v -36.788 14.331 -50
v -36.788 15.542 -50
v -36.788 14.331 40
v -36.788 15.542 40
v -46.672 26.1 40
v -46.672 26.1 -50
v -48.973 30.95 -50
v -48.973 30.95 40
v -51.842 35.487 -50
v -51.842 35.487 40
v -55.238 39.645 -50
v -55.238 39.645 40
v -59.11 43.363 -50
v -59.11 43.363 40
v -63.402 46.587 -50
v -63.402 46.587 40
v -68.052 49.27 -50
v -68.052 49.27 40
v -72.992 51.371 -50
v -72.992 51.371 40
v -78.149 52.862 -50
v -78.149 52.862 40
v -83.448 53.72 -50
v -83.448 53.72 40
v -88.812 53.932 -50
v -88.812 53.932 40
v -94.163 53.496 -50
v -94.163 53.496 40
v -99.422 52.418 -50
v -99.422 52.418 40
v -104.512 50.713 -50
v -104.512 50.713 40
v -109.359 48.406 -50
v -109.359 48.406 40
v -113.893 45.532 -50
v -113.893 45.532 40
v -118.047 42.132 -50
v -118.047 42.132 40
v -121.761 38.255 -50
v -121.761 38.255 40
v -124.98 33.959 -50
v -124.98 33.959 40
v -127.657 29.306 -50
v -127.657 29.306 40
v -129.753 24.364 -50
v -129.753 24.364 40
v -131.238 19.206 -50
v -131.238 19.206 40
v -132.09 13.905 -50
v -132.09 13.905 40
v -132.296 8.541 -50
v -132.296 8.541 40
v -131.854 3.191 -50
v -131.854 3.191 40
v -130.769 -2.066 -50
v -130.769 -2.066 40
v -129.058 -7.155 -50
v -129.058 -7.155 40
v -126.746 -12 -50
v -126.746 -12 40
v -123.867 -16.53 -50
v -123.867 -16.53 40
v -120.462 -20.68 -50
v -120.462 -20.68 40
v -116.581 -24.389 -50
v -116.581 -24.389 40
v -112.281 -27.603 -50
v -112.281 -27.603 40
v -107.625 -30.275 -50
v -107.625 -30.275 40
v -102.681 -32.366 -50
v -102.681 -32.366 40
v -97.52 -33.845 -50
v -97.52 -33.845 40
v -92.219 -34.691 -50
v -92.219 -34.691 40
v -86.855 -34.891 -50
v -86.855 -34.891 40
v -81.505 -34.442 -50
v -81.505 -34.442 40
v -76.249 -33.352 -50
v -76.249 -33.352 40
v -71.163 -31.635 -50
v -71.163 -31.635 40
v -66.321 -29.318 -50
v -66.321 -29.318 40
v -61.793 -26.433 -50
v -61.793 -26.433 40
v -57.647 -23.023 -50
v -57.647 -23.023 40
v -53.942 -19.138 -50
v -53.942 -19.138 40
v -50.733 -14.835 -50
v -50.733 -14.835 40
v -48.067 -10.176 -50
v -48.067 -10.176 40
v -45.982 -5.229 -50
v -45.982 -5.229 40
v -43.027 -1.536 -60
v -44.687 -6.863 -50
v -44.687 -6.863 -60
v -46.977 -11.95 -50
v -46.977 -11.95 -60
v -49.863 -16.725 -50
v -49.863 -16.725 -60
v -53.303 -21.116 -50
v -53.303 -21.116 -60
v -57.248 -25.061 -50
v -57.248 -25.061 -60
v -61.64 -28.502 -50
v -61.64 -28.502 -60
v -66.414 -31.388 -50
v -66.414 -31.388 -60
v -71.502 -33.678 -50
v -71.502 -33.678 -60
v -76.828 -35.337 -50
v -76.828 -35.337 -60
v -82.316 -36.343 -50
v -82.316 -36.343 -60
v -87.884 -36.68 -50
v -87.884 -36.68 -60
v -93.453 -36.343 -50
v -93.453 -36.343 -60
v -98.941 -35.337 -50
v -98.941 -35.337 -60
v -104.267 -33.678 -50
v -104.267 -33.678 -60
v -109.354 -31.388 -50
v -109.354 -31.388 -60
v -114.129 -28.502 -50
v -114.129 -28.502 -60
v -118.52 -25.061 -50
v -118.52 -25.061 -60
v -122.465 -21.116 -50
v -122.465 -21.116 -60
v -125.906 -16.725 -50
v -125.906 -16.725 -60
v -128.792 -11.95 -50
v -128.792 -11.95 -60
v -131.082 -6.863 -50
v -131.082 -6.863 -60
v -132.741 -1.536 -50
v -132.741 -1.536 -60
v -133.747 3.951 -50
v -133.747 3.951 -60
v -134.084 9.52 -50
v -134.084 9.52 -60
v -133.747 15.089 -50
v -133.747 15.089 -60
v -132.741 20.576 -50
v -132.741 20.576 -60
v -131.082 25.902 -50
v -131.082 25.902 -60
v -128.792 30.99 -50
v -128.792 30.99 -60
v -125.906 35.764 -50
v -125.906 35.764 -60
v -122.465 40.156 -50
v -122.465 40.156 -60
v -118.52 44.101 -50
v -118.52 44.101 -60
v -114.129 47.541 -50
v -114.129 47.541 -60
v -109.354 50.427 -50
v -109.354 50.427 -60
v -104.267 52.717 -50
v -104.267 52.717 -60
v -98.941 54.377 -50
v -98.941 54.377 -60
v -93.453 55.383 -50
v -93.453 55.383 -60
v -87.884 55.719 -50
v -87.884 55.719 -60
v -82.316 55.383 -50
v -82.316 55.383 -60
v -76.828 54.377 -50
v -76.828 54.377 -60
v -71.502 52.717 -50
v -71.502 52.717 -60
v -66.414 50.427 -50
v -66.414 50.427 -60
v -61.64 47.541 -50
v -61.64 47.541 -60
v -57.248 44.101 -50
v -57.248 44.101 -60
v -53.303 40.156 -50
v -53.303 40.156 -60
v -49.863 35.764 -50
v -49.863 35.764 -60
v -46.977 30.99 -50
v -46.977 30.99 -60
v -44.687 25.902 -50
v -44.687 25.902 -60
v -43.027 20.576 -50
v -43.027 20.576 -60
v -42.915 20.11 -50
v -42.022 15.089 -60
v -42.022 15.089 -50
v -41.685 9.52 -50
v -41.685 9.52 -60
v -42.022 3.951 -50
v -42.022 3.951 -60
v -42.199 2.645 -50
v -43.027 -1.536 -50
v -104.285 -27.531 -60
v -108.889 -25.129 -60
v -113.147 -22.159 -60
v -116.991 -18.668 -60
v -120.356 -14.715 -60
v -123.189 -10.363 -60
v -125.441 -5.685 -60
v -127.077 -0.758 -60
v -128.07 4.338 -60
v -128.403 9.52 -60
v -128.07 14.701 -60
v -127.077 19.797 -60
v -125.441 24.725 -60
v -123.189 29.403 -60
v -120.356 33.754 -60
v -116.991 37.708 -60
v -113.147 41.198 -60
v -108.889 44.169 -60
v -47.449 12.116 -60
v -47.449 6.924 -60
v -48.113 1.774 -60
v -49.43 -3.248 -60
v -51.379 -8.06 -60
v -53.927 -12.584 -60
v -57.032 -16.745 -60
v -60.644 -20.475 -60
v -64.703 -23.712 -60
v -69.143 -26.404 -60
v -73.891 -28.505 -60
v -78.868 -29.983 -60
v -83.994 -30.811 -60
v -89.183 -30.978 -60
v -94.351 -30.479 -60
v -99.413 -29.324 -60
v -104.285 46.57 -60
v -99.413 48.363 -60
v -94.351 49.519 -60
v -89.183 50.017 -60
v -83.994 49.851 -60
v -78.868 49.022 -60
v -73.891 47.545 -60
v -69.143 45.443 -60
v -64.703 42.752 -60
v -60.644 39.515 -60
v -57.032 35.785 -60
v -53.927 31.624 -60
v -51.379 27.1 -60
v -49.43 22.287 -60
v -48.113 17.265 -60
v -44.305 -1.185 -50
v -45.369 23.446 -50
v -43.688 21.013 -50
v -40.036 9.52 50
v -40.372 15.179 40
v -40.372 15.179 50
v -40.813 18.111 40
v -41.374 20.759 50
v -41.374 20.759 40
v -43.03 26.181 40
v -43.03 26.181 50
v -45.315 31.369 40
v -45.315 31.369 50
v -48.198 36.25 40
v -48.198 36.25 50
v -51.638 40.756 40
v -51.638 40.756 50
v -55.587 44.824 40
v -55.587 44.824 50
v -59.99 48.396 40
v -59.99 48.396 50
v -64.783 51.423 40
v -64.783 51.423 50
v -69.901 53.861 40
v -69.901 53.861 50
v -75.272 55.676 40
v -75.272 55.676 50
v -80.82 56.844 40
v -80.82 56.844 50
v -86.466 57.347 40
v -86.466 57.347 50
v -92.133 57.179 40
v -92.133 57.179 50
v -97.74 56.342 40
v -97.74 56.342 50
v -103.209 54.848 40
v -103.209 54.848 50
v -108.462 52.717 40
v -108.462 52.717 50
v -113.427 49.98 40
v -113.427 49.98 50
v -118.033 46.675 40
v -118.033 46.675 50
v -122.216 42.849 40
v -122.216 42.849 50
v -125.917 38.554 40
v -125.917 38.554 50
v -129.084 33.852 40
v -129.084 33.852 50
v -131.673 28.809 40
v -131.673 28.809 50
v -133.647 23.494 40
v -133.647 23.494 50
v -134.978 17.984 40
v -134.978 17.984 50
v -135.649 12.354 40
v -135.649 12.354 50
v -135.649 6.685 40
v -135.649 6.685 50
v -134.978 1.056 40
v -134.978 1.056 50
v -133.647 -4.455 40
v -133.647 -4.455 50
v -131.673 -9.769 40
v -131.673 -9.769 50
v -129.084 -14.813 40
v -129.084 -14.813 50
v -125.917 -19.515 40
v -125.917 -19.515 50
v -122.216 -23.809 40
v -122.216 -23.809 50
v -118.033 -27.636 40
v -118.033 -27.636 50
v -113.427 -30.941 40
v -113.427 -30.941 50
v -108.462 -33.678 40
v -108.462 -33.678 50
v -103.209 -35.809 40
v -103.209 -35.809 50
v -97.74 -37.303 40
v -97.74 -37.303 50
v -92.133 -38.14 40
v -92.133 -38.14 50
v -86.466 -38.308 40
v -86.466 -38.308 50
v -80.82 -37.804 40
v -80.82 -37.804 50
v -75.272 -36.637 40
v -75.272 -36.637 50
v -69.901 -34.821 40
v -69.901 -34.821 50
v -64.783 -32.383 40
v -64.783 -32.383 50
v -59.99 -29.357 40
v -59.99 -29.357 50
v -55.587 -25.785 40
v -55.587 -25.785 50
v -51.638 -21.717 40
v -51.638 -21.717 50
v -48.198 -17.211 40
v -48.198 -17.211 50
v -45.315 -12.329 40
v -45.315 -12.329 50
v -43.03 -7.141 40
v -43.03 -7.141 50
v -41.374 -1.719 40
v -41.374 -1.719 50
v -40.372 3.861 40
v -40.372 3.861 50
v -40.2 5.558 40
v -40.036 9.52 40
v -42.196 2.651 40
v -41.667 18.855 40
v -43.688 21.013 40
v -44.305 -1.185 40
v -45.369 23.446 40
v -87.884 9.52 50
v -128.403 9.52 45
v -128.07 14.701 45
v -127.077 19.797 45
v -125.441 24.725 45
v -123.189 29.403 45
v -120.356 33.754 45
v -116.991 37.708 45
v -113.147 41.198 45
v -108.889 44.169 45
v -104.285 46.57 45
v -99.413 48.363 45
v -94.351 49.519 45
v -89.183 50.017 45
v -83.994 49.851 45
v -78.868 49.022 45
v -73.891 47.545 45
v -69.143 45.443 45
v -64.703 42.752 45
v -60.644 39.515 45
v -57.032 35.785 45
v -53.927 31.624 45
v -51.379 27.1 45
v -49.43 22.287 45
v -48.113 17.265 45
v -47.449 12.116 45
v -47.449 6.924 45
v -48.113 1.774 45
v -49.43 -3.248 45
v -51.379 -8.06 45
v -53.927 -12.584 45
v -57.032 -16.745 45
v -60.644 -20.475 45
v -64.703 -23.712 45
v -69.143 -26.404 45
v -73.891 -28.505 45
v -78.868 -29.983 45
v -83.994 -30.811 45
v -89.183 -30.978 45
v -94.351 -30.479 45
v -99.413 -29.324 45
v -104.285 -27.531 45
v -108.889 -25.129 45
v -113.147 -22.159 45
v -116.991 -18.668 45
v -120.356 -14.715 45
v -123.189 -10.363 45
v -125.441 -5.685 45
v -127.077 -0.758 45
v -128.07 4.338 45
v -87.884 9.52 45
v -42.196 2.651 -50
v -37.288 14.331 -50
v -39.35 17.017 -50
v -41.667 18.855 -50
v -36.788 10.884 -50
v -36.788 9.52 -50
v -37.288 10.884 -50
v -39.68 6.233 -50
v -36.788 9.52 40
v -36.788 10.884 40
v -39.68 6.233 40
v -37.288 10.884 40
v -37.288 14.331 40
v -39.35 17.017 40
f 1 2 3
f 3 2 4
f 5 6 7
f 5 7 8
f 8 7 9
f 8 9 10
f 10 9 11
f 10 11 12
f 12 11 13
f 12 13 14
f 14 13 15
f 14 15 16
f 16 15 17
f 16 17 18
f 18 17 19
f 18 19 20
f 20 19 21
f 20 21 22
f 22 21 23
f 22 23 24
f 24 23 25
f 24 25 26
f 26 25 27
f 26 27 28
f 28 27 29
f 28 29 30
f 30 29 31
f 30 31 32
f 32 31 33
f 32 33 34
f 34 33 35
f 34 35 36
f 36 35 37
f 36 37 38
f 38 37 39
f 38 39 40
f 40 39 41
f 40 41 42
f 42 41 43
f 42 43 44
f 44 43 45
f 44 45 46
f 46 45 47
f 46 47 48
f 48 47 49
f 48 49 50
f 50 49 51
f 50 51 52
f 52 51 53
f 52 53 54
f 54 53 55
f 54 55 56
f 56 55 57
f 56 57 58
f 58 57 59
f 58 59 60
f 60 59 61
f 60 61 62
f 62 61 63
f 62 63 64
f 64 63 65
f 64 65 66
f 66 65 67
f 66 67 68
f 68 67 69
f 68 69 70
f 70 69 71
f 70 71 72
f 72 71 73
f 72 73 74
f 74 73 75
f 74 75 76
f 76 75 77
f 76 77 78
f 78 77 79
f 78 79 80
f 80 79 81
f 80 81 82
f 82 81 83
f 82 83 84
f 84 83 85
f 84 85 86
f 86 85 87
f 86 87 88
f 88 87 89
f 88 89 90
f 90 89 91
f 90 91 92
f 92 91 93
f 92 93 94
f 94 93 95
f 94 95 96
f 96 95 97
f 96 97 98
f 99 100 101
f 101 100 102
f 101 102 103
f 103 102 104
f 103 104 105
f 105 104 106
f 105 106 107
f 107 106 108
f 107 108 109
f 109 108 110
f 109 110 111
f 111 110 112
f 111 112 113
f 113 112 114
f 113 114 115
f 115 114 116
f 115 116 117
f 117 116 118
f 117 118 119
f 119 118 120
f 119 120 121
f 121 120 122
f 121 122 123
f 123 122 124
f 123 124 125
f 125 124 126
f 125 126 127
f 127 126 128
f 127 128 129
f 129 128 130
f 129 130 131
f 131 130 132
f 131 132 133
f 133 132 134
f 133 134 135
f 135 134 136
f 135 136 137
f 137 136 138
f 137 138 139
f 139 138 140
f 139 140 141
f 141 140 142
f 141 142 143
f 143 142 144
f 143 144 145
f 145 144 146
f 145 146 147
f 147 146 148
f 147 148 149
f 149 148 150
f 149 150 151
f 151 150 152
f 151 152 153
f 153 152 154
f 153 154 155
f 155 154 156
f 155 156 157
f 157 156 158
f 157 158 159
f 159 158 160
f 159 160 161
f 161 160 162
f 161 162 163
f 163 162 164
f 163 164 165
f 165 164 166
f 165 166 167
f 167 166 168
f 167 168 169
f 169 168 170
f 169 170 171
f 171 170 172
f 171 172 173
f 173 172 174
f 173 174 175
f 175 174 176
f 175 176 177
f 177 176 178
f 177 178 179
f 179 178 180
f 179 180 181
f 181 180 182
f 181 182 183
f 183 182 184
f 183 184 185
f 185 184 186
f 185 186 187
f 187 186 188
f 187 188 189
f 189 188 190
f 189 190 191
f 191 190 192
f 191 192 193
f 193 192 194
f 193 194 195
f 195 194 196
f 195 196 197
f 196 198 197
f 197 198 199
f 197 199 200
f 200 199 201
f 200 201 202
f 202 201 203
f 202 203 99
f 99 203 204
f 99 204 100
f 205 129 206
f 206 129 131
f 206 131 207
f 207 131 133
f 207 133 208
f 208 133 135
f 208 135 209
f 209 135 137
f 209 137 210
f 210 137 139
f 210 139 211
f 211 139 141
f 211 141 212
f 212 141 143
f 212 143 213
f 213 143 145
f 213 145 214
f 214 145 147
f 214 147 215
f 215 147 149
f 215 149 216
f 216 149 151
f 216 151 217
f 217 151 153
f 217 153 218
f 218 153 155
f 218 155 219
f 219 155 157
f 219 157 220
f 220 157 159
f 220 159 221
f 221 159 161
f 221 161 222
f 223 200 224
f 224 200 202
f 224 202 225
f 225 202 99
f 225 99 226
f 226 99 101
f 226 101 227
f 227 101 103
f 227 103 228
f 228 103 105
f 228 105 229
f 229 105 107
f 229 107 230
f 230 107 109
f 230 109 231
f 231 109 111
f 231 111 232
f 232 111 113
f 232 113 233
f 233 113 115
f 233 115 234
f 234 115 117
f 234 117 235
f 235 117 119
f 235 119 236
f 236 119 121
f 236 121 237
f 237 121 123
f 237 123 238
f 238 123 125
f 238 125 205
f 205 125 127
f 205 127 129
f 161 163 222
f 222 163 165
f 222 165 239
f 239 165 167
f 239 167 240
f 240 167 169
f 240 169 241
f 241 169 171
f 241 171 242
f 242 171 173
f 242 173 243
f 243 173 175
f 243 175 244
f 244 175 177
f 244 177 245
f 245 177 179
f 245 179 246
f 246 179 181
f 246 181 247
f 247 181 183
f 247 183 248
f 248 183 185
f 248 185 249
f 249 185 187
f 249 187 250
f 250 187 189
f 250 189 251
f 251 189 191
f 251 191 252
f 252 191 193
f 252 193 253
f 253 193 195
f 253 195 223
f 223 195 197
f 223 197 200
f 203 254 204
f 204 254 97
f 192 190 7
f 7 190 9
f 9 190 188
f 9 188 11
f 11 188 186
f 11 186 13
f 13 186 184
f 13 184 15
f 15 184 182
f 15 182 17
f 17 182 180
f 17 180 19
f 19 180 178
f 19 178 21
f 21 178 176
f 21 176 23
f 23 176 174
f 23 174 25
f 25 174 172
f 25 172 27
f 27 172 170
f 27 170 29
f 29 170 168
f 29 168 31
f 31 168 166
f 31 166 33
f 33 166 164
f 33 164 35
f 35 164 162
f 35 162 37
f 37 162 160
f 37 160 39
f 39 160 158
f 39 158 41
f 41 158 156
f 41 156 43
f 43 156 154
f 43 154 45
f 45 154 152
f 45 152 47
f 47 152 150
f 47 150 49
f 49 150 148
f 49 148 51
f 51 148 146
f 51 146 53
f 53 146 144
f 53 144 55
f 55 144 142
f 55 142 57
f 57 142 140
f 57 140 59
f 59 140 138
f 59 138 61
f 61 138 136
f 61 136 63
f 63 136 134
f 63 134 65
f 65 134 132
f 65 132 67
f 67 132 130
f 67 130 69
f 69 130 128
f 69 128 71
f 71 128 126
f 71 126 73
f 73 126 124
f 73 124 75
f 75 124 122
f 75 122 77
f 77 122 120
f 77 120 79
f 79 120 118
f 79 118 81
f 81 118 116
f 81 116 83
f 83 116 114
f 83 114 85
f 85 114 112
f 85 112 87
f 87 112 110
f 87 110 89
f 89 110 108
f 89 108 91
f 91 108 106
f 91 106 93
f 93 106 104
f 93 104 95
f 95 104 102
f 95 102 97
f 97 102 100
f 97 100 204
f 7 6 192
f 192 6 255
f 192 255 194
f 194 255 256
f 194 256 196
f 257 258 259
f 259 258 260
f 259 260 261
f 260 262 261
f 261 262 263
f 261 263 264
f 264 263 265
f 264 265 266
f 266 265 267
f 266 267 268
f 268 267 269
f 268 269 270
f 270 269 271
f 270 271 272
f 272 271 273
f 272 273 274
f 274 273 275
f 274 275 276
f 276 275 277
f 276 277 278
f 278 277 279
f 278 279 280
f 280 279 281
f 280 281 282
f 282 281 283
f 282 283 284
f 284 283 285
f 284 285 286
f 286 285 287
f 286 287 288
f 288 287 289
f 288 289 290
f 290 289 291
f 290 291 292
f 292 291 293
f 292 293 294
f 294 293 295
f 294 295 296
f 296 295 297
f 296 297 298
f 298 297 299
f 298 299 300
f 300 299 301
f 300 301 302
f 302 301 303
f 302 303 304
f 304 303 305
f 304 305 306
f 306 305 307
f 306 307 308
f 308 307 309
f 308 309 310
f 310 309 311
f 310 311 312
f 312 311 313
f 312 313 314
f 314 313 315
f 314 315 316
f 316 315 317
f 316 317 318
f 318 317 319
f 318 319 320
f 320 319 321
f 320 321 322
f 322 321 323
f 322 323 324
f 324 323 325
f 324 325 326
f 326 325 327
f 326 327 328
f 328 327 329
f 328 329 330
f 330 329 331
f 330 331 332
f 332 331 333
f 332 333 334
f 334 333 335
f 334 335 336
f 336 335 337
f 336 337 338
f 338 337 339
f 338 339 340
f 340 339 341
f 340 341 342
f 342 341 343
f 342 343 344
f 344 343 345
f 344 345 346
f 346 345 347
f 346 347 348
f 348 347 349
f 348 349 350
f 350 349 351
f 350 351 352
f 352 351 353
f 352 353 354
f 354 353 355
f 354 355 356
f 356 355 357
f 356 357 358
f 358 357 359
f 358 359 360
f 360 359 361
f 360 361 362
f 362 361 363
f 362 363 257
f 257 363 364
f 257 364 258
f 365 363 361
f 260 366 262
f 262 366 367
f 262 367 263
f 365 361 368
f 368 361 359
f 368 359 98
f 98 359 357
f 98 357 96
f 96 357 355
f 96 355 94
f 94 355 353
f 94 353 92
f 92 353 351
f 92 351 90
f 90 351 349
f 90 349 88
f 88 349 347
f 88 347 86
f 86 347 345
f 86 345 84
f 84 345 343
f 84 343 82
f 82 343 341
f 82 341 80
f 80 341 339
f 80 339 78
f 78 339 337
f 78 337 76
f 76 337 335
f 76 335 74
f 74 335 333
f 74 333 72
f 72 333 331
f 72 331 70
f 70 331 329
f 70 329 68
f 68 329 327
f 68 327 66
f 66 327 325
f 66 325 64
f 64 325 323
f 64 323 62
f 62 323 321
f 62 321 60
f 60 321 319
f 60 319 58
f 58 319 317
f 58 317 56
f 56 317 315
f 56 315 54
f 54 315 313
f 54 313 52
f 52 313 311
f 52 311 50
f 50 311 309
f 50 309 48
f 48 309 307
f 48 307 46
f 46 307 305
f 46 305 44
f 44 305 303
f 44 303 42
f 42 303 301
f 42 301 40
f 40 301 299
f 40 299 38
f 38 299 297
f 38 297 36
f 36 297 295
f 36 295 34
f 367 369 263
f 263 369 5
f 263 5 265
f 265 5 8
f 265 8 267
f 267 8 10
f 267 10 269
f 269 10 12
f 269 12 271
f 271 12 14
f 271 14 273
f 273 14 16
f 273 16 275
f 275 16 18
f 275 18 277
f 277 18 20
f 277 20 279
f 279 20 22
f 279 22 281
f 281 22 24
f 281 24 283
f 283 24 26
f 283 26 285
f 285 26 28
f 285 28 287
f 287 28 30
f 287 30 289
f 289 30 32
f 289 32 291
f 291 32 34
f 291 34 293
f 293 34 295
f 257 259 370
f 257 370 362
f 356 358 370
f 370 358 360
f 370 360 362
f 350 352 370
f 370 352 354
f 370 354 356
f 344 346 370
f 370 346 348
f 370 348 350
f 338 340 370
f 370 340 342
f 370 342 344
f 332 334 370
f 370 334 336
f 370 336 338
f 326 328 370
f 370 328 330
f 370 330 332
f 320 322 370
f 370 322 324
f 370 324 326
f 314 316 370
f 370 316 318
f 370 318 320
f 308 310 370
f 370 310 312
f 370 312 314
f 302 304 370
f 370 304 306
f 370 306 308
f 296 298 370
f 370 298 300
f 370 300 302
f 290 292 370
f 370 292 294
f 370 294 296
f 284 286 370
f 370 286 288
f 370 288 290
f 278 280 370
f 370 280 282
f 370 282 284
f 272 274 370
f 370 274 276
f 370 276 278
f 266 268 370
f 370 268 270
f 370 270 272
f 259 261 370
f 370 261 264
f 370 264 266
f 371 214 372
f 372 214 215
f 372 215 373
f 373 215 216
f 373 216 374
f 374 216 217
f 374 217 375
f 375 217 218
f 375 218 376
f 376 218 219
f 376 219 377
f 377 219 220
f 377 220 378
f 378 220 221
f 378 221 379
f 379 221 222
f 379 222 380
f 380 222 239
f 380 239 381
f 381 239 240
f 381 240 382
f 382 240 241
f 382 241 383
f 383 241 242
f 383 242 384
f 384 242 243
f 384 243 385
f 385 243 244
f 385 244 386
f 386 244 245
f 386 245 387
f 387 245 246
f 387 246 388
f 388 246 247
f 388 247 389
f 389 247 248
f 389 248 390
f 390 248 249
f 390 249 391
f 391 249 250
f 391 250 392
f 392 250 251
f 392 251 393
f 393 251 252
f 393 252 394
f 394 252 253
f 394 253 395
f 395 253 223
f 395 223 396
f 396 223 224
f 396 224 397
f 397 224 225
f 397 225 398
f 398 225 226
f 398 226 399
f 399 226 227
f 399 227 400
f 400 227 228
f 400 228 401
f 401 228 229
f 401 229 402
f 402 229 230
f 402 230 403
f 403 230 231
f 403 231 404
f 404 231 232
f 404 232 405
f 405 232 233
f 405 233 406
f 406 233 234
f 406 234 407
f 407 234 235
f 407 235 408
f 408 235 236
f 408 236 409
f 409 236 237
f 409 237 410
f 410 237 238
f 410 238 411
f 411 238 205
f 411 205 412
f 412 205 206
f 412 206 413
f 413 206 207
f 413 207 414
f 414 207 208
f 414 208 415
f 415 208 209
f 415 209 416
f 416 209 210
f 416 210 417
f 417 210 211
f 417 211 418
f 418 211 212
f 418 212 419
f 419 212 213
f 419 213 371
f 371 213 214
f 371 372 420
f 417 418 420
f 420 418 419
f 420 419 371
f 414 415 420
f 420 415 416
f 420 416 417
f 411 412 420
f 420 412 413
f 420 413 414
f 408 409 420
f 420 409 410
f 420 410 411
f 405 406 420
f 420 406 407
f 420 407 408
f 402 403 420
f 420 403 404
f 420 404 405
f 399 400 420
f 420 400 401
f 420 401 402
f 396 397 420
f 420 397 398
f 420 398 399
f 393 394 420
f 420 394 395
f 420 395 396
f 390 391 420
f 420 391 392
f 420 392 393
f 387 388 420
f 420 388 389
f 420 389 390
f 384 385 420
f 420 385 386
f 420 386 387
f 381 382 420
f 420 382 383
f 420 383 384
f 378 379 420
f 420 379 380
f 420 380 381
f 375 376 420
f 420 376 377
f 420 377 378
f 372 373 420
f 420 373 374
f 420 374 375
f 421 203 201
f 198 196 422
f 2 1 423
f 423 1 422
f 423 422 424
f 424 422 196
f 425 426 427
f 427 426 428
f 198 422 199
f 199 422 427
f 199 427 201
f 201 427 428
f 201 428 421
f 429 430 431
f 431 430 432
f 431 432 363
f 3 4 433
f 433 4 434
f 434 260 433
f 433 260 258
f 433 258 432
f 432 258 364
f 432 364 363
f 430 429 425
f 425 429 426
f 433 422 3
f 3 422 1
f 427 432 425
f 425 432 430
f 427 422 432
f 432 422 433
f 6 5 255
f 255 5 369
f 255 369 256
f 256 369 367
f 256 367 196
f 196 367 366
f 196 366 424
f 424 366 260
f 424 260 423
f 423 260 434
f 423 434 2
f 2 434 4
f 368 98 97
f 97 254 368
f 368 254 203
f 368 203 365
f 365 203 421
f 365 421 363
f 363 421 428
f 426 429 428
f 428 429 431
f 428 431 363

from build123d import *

# Parameters (mm, degrees)
CROQUIS1_R              = 44.422335488
SALIENTE_EXTRUIR1_DEPTH = 50
CROQUIS2_R              = 46.199565805
SALIENTE_EXTRUIR2_DEPTH = 10
CROQUIS3_R              = 47.848668402
SALIENTE_EXTRUIR3_DEPTH = 10
CROQUIS5_R              = 40.518185266
CORTAR_EXTRUIR4_DEPTH   = 105
CROQUIS8_W              = 90
CROQUIS8_H              = 6.022343016
SALIENTE_EXTRUIR4_DEPTH = 45.5
CROQUIS9_W              = 59.465557631
CROQUIS9_H              = 90
CORTAR_EXTRUIR5_DEPTH   = 45
CROQUIS10_W             = 22.822208634
CROQUIS10_H             = 90
CORTAR_EXTRUIR6_DEPTH   = 45
CROQUIS11_W             = 90
CROQUIS11_H             = 3.447121101
CORTAR_EXTRUIR7_DEPTH   = 0.5
REDONDEO1_R             = 20
REDONDEO2_R             = 40


with BuildPart() as part:
    # Croquis1 → Saliente-Extruir1 (new, symmetric)
    with BuildSketch(Plane(origin=(0, 9.520016683, 0), x_dir=(1, 0, 0), z_dir=(0, 0, 1))):
        with Locations(Location((-87.884188046, 0, 0), (0, 0, 180))):
            Circle(CROQUIS1_R)
    extrude(amount=SALIENTE_EXTRUIR1_DEPTH, both=True)

    # Croquis2 → Saliente-Extruir2 (add)
    with BuildSketch(Plane(origin=(0, 9.520016683, -50), x_dir=(-1, 0, 0), z_dir=(0, 0, -1))):
        with Locations((87.884188046, 0)):
            Circle(CROQUIS2_R)
    extrude(amount=SALIENTE_EXTRUIR2_DEPTH)

    # Croquis3 → Saliente-Extruir3 (add)
    with BuildSketch(Plane(origin=(0, 9.520016683, 50), x_dir=(1, 0, 0), z_dir=(0, 0, 1))):
        with Locations((-87.884188046, 0)):
            Circle(CROQUIS3_R)
    extrude(amount=-SALIENTE_EXTRUIR3_DEPTH)

    # Croquis5 → Cortar-Extruir4 (cut)
    with BuildSketch(Plane(origin=(0, 9.520016683, -60), x_dir=(-1, 0, 0), z_dir=(0, 0, -1))):
        with Locations((87.884188046, 0)):
            Circle(CROQUIS5_R)
    extrude(amount=-CORTAR_EXTRUIR4_DEPTH, mode=Mode.SUBTRACT)

    # Croquis8 → Saliente-Extruir4 (add, symmetric)
    with BuildSketch(Plane(origin=(0, 0, 0), x_dir=(0, 0, -1), z_dir=(1, 0, 0))):
        with Locations((5, 12.531188191)):
            Rectangle(CROQUIS8_W, CROQUIS8_H)
    extrude(amount=SALIENTE_EXTRUIR4_DEPTH, both=True)

    # Croquis9 → Cortar-Extruir5 (cut)
    with BuildSketch(Plane(origin=(0, 15.542359699, 0), x_dir=(1, 0, 0), z_dir=(0, 1, 0))):
        with Locations((15.767221184, 5)):
            Rectangle(CROQUIS9_W, CROQUIS9_H)
    extrude(amount=-CORTAR_EXTRUIR5_DEPTH, mode=Mode.SUBTRACT)

    # Croquis10 → Cortar-Extruir6 (cut)
    with BuildSketch(Plane(origin=(0, 15.542359699, 0), x_dir=(1, 0, 0), z_dir=(0, 1, 0))):
        with Locations((-25.376661948, 5)):
            Rectangle(CROQUIS10_W, CROQUIS10_H)
    extrude(amount=-CORTAR_EXTRUIR6_DEPTH, mode=Mode.SUBTRACT)

    # Croquis11 → Cortar-Extruir7 (cut)
    with BuildSketch(Plane(origin=(-36.787766265, 0, 0), x_dir=(0, 0, -1), z_dir=(1, 0, 0))):
        with Locations((5, 12.607575702)):
            Rectangle(CROQUIS11_W, CROQUIS11_H)
    extrude(amount=-CORTAR_EXTRUIR7_DEPTH, mode=Mode.SUBTRACT)

    # Redondeo1
    # the kernel refuses this fillet: 20 mm, written as the material it adds along each edge
    with BuildSketch(Plane(origin=(-43.871970711, 15.542359699, -50), x_dir=(-0.25635201555955867, 0.966583490505891, 0), z_dir=(0, 0, 1))) as redondeo1_piece_1:
        with BuildLine():
            CenterArc((13.381955248, -19.848268644), REDONDEO1_R, 97.062122585, 42.393283836)
            Line((-1.816050088, -6.847475061), (-2.120010195, -6.587459189))
            ThreePointArc((-2.120010195, -6.587459189), (-1.29465844, -3.321196724), (-0.386633396, 0.102540806))
            Line((-0.386633396, 0.102540806), (0.049178173, 0.396965373))
            ThreePointArc((0.049178173, 0.396965373), (5.46152329, 0.06298694), (10.873868406, 0.396965373))
            Line((10.873868406, 0.396965373), (10.92304658, 0))
        make_face()
    extrude(amount=90)

    # Redondeo2
    # the kernel refuses this fillet: 40 mm, written as the material it adds along each edge
    with BuildSketch(Plane(origin=(-43.461852558, 9.520016683, -50), x_dir=(1, 0, 0), z_dir=(0, 0, 1))) as redondeo2_piece_1:
        with BuildLine():
            CenterArc((35.211176648, -28.029171841), REDONDEO2_R, 135.514455154, 25.094644296)
            Line((-2.519839285, -14.748718663), (-3.274459604, -14.483109599))
            ThreePointArc((-3.274459604, -14.483109599), (-1.423064565, -7.346485792), (-0.8, 0))
            Line((-0.8, 0), (0, 0.8))
            ThreePointArc((0, 0.8), (3.337043147, 0.8), (6.103344486, 0.560583437))
            Line((6.103344486, 0.560583437), (6.674086293, 0))
        make_face()
    extrude(amount=90)


solid = part.part
